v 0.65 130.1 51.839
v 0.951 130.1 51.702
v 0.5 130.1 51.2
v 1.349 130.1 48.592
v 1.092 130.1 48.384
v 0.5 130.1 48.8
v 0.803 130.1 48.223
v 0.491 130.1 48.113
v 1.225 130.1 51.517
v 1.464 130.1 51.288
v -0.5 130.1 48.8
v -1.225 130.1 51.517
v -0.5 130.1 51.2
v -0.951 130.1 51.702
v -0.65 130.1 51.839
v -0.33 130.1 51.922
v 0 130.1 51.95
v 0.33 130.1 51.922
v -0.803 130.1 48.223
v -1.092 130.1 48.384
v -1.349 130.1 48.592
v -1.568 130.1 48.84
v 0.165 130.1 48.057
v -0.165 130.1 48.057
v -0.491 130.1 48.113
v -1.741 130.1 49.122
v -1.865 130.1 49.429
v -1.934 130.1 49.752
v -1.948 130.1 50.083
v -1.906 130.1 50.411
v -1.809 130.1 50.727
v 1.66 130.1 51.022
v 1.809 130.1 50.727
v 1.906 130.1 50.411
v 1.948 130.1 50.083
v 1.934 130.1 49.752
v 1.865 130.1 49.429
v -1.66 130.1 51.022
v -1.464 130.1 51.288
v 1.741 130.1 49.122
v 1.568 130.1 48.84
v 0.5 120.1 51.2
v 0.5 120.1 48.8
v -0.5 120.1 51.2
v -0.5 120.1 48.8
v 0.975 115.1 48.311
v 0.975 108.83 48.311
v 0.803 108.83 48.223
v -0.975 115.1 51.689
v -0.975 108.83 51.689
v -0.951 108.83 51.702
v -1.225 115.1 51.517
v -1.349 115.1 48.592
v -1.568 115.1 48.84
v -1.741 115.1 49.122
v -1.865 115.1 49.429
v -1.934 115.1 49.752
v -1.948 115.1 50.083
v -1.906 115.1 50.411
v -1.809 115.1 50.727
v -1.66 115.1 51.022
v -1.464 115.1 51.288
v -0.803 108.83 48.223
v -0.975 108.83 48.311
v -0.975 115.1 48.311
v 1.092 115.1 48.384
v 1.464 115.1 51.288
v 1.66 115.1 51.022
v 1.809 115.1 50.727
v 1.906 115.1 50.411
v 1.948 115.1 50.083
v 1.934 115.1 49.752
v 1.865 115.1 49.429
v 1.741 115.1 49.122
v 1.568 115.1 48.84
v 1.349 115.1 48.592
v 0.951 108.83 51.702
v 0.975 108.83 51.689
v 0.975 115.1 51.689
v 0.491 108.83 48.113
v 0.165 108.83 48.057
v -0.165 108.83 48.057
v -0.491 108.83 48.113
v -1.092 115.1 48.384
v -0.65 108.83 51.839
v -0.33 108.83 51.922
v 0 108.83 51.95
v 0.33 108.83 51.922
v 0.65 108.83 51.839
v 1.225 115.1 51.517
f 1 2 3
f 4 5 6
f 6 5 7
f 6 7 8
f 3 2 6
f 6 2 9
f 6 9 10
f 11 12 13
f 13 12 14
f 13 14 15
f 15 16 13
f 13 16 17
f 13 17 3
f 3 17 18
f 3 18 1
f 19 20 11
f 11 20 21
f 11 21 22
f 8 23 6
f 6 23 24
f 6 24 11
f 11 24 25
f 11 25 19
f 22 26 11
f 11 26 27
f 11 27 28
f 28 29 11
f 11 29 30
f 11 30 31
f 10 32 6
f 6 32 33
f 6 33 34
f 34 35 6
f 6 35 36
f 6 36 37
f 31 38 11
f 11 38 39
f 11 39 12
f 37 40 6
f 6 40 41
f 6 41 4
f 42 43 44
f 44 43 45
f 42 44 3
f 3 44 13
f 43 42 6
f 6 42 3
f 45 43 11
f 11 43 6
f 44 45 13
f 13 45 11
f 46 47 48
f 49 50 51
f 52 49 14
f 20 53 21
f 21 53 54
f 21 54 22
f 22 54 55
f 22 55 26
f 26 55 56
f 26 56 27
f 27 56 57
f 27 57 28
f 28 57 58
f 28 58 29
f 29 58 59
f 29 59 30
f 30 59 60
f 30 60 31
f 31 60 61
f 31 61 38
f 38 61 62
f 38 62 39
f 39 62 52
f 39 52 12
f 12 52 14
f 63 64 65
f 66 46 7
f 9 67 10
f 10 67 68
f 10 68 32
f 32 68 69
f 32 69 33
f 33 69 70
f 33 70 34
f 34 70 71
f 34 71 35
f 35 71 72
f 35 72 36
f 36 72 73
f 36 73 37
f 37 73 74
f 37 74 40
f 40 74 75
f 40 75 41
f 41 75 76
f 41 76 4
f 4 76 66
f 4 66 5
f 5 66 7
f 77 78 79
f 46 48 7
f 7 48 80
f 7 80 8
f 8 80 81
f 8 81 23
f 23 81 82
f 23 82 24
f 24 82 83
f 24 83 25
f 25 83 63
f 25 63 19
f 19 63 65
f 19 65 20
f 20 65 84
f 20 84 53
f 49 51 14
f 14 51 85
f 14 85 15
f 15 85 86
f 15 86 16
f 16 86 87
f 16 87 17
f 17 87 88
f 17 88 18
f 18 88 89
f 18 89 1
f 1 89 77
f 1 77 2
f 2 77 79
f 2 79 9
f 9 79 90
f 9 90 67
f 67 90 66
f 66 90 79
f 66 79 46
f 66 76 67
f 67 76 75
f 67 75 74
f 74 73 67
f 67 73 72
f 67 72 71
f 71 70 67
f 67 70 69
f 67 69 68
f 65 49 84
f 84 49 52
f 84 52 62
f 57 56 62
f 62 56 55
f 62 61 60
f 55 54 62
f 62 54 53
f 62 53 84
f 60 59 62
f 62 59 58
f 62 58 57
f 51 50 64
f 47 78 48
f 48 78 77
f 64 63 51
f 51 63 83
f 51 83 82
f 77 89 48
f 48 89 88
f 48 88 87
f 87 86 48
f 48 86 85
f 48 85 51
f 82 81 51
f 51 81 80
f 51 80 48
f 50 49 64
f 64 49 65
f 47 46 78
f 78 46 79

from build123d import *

# Parameters (mm, degrees)
SKETCH1_R               = 30
BOSS_EXTRUDE1_DEPTH     = 200
BOSS_EXTRUDE2_START     = -60
SKETCH2_R               = 4
BOSS_EXTRUDE2_DEPTH     = 80
BOSS_EXTRUDE3_DEPTH     = 10
BOSS_EXTRUDE4_DEPTH     = 10
FILLET1_R               = 10
FILLET2_R               = 3
CUT_EXTRUDE1_START      = -34
SKETCH7_R               = 4
CUT_EXTRUDE1_DEPTH      = 12
SKETCH8_R               = 2
CUT_EXTRUDE2_DEPTH      = 70
BOSS_EXTRUDE6_START     = 0.1
SKETCH9_R               = 2
BOSS_EXTRUDE6_DEPTH     = 70
CUT_EXTRUDE4_START      = -30
CUT_EXTRUDE4_DEPTH      = 35
SKETCH12_W              = 1
SKETCH12_H              = 2.4
CUT_EXTRUDE5_DEPTH      = 20
CUT_EXTRUDE6_START      = -200
SKETCH14_R              = 30
CUT_EXTRUDE6_DEPTH      = 200
SKETCH15_R              = 97.689585443
SKETCH15_R_2            = 2
CUT_EXTRUDE7_DEPTH      = 200
CUT_EXTRUDE8_DEPTH      = 200
CUT_EXTRUDE8_DEPTH_BACK = 200
SKETCH16_W              = 5.14946919
SKETCH16_H              = 11.525449866
CUT_EXTRUDE9_DEPTH      = 200
CUT_EXTRUDE9_DEPTH_BACK = 200
SKETCH17_W              = 4
SKETCH17_H              = 5
SKETCH19_W              = 8.073982183
SKETCH19_H              = 13.216207409
CUT_EXTRUDE11_DEPTH     = 7
SKETCH20_W              = 16.90925267
SKETCH20_H              = 17.799092854
CUT_EXTRUDE12_DEPTH     = 3
SKETCH21_W              = 18.708797059
SKETCH21_H              = 16.020174298
CUT_EXTRUDE13_DEPTH     = 3
SKETCH22_W              = 8.604903729
SKETCH22_H              = 5.934872157
CUT_EXTRUDE14_DEPTH     = 30.73
CUT_EXTRUDE15_DEPTH     = 5
SKETCH24_R              = 2
SKETCH24_R_2            = 1.95
CUT_EXTRUDE16_DEPTH     = 25


with BuildPart() as part:
    # Sketch1 → Boss-Extrude1 (new body)
    with BuildSketch(Plane(origin=(0, 0, 0), x_dir=(1, 0, 0), z_dir=(0, 1, 0))):
        Circle(SKETCH1_R)
    extrude(amount=BOSS_EXTRUDE1_DEPTH)

    # Sketch14 → Cut-Extrude6 (cut)
    with BuildSketch(Plane(origin=(0, 200, 0), x_dir=(1, 0, 0), z_dir=(0, 1, 0)).offset(CUT_EXTRUDE6_START)):
        Circle(SKETCH14_R)
    extrude(amount=CUT_EXTRUDE6_DEPTH, mode=Mode.SUBTRACT)


with BuildPart() as body_2:
    # Sketch2 → Boss-Extrude2 (new body)
    with BuildSketch(Plane(origin=(0, 200, 0), x_dir=(1, 0, 0), z_dir=(0, 1, 0)).offset(BOSS_EXTRUDE2_START)):
        with Locations((0, -50)):
            Circle(SKETCH2_R)
    extrude(amount=-BOSS_EXTRUDE2_DEPTH)

    # Sketch4 → Boss-Extrude3 (add)
    with BuildSketch(Plane(origin=(0, 140, 0), x_dir=(1, 0, 0), z_dir=(0, 1, 0))):
        with BuildLine():
            Line((-2.932848445, -47.28), (40.915854419, 0))
            Line((40.915854419, 0), (6, 37.648128431))
            Line((6, 37.648128431), (11.86569689, 43.088128431))
            Line((11.86569689, 43.088128431), (51.826748931, 0))
            Line((51.826748931, 0), (2.932848445, -52.72))
            ThreePointArc((2.932848445, -52.72), (2.72, -47.067151555), (-2.932848445, -47.28))
        make_face()
    extrude(amount=-BOSS_EXTRUDE3_DEPTH)

    # Sketch5 → Boss-Extrude4 (add)
    with BuildSketch(Plane.XZ.offset(-60)):
        with BuildLine():
            Line((6, -37.648128431), (11.86569689, -43.088128431))
            Line((11.86569689, -43.088128431), (51.826748931, 0))
            Line((51.826748931, 0), (2.932848445, 52.72))
            ThreePointArc((2.932848445, 52.72), (2.72, 47.067151555), (-2.932848445, 47.28))
            Line((-2.932848445, 47.28), (40.915854419, 0))
            Line((40.915854419, 0), (6, -37.648128431))
        make_face()
    extrude(amount=-BOSS_EXTRUDE4_DEPTH)

    # Fillet1
    fillet1_edges = [body_2.edges().sort_by_distance(p)[0] for p in [
        (51.826748931, 65, 0),
        (40.915854419, 65, 0),
        (40.915854419, 135, 0),
        (51.826748931, 135, 0),
    ]]
    fillet(fillet1_edges, radius=FILLET1_R)

    # Fillet2
    fillet2_edges = [body_2.edges().sort_by_distance(p)[0] for p in [
        (11.86569689, 65, -43.088128431),
        (8.932848445, 70, -40.368128431),
        (6, 65, -37.648128431),
        (8.932848445, 60, -40.368128431),
        (6, 135, -37.648128431),
        (8.932848445, 130, -40.368128431),
        (11.86569689, 135, -43.088128431),
        (8.932848445, 140, -40.368128431),
    ]]
    fillet(fillet2_edges, radius=FILLET2_R)

    # Sketch7 → Cut-Extrude1 (cut)
    with BuildSketch(Plane(origin=(0, 140, 0), x_dir=(1, 0, 0), z_dir=(0, 1, 0)).offset(CUT_EXTRUDE1_START)):
        with Locations((0, -50)):
            Circle(SKETCH7_R)
    extrude(amount=-CUT_EXTRUDE1_DEPTH, mode=Mode.SUBTRACT)


with BuildPart() as cut_extrude1_piece_1:
    # of the separate pieces the step leaves, piece 1, a body of its own (cut_extrude1_pieces)
    add(body_2.part.solids().sort_by_distance((13.90569689, 70, -40.888492097))[0])


with BuildPart() as cut_extrude1_piece_2:
    # of the separate pieces the step leaves, piece 2, a body of its own (cut_extrude1_pieces)
    add(body_2.part.solids().sort_by_distance((4, 130, 50))[0])


with BuildPart() as cut_extrude2_tool:
    # Sketch8 → Cut-Extrude2 (new body)
    with BuildSketch(Plane(origin=(0, 140, 0), x_dir=(1, 0, 0), z_dir=(0, 1, 0))):
        with Locations((0, -50)):
            Circle(SKETCH8_R)
    extrude(amount=-CUT_EXTRUDE2_DEPTH)


with BuildPart() as cut_extrude1_piece_1_1:
    add(cut_extrude1_piece_1.part)

    # Cut-Extrude2: cut by cut_extrude2_tool
    add(cut_extrude2_tool.part, mode=Mode.SUBTRACT)



with BuildPart() as cut_extrude1_piece_2_1:
    add(cut_extrude1_piece_2.part)

    # Cut-Extrude2: cut by cut_extrude2_tool
    add(cut_extrude2_tool.part, mode=Mode.SUBTRACT)


with BuildPart() as cut_extrude1_piece_1_2:
    add(cut_extrude1_piece_1_1.part)

    add(cut_extrude1_piece_2_1.part)  # Boss-Extrude6 merges Cut-Extrude1 piece 2
    # Sketch9 → Boss-Extrude6 (add)
    with BuildSketch(Plane(origin=(0, 140, 0), x_dir=(1, 0, 0), z_dir=(0, 1, 0)).offset(BOSS_EXTRUDE6_START)):
        with Locations((0, -50)):
            Circle(SKETCH9_R)
    extrude(amount=-BOSS_EXTRUDE6_DEPTH)

    # Sketch11 → Cut-Extrude4 (cut)
    with BuildSketch(Plane(origin=(0, 140.1, 0), x_dir=(1, 0, 0), z_dir=(0, 1, 0)).offset(CUT_EXTRUDE4_START)):
        with BuildLine():
            Line((-0.975, -51.746245974), (-0.975, -48.253754026))
            ThreePointArc((-0.975, -48.253754026), (-2, -50), (-0.975, -51.746245974))
        make_face()
        with BuildLine():
            Line((0.975, -48.253754026), (0.975, -51.746245974))
            ThreePointArc((0.975, -51.746245974), (2, -50), (0.975, -48.253754026))
        make_face()
    extrude(amount=-CUT_EXTRUDE4_DEPTH, mode=Mode.SUBTRACT)

    # Sketch12 → Cut-Extrude5 (cut)
    with BuildSketch(Plane(origin=(0, 140.1, 0), x_dir=(1, 0, 0), z_dir=(0, 1, 0))):
        with Locations((0, -50)):
            Rectangle(SKETCH12_W, SKETCH12_H)
    extrude(amount=-CUT_EXTRUDE5_DEPTH, mode=Mode.SUBTRACT)

    # Sketch15 → Cut-Extrude7 (cut)
    with BuildSketch(Plane(origin=(0, 140, 0), x_dir=(1, 0, 0), z_dir=(0, 1, 0))):
        with Locations((0, -50)):
            Circle(SKETCH15_R)
        with Locations((0, -50)):
            Circle(SKETCH15_R_2, mode=Mode.SUBTRACT)
    extrude(amount=-CUT_EXTRUDE7_DEPTH, mode=Mode.SUBTRACT)


with BuildPart() as cut_extrude7_piece_1:
    # of the separate pieces the step leaves, piece 1, a body of its own (cut_extrude7_pieces)
    add(cut_extrude1_piece_1_2.part.solids().sort_by_distance((0.975, 110.1, 51.746245974))[0])

    # Sketch17 → Cut-Extrude9 (cut, two sides: drawn at the far end of the back side and taken through both)
    with BuildSketch(Plane.ZY.offset(0.975).offset(-CUT_EXTRUDE9_DEPTH_BACK)):
        with Locations((50, 72.6)):
            Rectangle(SKETCH17_W, SKETCH17_H)
    extrude(amount=CUT_EXTRUDE9_DEPTH + CUT_EXTRUDE9_DEPTH_BACK, mode=Mode.SUBTRACT)

    # Sketch19 → Cut-Extrude11 (cut)
    with BuildSketch(Plane(origin=(0, 140.1, 0), x_dir=(1, 0, 0), z_dir=(0, 1, 0))):
        with Locations((-1.711492601, -47.464499481)):
            Rectangle(SKETCH19_W, SKETCH19_H)
    extrude(amount=-CUT_EXTRUDE11_DEPTH, mode=Mode.SUBTRACT)

    # Sketch20 → Cut-Extrude12 (cut)
    with BuildSketch(Plane(origin=(0, 133.1, 0), x_dir=(1, 0, 0), z_dir=(0, 1, 0))):
        with Locations((1.357922153, -50.543868256)):
            Rectangle(SKETCH20_W, SKETCH20_H)
    extrude(amount=-CUT_EXTRUDE12_DEPTH, mode=Mode.SUBTRACT)

    # Sketch21 → Cut-Extrude13 (cut)
    with BuildSketch(Plane.XZ.offset(-75.1)):
        with Locations((-2.026585117, 52.503315088)):
            Rectangle(SKETCH21_W, SKETCH21_H)
    extrude(amount=-CUT_EXTRUDE13_DEPTH, mode=Mode.SUBTRACT)

    # Sketch22 → Cut-Extrude14 (cut)
    with BuildSketch(Plane.XZ.offset(-78.1)):
        with Locations((0.059480902, 50.237923606)):
            Rectangle(SKETCH22_W, SKETCH22_H)
    extrude(amount=-CUT_EXTRUDE14_DEPTH, mode=Mode.SUBTRACT)

    # Sketch23 → Cut-Extrude15 (cut)
    with BuildSketch(Plane.XZ.offset(-110.1)):
        with BuildLine():
            Line((-0.975, 51.746245974), (-0.975, 48.253754026))
            ThreePointArc((-0.975, 48.253754026), (-2, 50), (-0.975, 51.746245974))
        make_face()
        with BuildLine():
            Line((0.975, 48.253754026), (0.975, 51.746245974))
            ThreePointArc((0.975, 51.746245974), (2, 50), (0.975, 48.253754026))
        make_face()
    extrude(amount=-CUT_EXTRUDE15_DEPTH, mode=Mode.SUBTRACT)

    # Sketch24 → Cut-Extrude16 (cut)
    with BuildSketch(Plane(origin=(0, 130.1, 0), x_dir=(1, 0, 0), z_dir=(0, 1, 0))):
        with Locations((0, -50)):
            Circle(SKETCH24_R)
        with Locations((0, -50)):
            Circle(SKETCH24_R_2, mode=Mode.SUBTRACT)
    extrude(amount=-CUT_EXTRUDE16_DEPTH, mode=Mode.SUBTRACT)


with BuildPart() as cut_extrude7_piece_2:
    # of the separate pieces the step leaves, piece 2, a body of its own (cut_extrude7_pieces)
    add(cut_extrude1_piece_1_2.part.solids().sort_by_distance((2, 60, 50))[0])

    # Sketch16 → Cut-Extrude8 (cut, two sides: drawn at the far end of the back side and taken through both)
    with BuildSketch(Plane(origin=(0.975, 0, 0), x_dir=(0, 0, -1), z_dir=(1, 0, 0)).offset(-CUT_EXTRUDE8_DEPTH_BACK)):
        with Locations((-49.425265405, 64.237275067)):
            Rectangle(SKETCH16_W, SKETCH16_H)
    extrude(amount=CUT_EXTRUDE8_DEPTH + CUT_EXTRUDE8_DEPTH_BACK, mode=Mode.SUBTRACT)


solid = cut_extrude7_piece_1.part
